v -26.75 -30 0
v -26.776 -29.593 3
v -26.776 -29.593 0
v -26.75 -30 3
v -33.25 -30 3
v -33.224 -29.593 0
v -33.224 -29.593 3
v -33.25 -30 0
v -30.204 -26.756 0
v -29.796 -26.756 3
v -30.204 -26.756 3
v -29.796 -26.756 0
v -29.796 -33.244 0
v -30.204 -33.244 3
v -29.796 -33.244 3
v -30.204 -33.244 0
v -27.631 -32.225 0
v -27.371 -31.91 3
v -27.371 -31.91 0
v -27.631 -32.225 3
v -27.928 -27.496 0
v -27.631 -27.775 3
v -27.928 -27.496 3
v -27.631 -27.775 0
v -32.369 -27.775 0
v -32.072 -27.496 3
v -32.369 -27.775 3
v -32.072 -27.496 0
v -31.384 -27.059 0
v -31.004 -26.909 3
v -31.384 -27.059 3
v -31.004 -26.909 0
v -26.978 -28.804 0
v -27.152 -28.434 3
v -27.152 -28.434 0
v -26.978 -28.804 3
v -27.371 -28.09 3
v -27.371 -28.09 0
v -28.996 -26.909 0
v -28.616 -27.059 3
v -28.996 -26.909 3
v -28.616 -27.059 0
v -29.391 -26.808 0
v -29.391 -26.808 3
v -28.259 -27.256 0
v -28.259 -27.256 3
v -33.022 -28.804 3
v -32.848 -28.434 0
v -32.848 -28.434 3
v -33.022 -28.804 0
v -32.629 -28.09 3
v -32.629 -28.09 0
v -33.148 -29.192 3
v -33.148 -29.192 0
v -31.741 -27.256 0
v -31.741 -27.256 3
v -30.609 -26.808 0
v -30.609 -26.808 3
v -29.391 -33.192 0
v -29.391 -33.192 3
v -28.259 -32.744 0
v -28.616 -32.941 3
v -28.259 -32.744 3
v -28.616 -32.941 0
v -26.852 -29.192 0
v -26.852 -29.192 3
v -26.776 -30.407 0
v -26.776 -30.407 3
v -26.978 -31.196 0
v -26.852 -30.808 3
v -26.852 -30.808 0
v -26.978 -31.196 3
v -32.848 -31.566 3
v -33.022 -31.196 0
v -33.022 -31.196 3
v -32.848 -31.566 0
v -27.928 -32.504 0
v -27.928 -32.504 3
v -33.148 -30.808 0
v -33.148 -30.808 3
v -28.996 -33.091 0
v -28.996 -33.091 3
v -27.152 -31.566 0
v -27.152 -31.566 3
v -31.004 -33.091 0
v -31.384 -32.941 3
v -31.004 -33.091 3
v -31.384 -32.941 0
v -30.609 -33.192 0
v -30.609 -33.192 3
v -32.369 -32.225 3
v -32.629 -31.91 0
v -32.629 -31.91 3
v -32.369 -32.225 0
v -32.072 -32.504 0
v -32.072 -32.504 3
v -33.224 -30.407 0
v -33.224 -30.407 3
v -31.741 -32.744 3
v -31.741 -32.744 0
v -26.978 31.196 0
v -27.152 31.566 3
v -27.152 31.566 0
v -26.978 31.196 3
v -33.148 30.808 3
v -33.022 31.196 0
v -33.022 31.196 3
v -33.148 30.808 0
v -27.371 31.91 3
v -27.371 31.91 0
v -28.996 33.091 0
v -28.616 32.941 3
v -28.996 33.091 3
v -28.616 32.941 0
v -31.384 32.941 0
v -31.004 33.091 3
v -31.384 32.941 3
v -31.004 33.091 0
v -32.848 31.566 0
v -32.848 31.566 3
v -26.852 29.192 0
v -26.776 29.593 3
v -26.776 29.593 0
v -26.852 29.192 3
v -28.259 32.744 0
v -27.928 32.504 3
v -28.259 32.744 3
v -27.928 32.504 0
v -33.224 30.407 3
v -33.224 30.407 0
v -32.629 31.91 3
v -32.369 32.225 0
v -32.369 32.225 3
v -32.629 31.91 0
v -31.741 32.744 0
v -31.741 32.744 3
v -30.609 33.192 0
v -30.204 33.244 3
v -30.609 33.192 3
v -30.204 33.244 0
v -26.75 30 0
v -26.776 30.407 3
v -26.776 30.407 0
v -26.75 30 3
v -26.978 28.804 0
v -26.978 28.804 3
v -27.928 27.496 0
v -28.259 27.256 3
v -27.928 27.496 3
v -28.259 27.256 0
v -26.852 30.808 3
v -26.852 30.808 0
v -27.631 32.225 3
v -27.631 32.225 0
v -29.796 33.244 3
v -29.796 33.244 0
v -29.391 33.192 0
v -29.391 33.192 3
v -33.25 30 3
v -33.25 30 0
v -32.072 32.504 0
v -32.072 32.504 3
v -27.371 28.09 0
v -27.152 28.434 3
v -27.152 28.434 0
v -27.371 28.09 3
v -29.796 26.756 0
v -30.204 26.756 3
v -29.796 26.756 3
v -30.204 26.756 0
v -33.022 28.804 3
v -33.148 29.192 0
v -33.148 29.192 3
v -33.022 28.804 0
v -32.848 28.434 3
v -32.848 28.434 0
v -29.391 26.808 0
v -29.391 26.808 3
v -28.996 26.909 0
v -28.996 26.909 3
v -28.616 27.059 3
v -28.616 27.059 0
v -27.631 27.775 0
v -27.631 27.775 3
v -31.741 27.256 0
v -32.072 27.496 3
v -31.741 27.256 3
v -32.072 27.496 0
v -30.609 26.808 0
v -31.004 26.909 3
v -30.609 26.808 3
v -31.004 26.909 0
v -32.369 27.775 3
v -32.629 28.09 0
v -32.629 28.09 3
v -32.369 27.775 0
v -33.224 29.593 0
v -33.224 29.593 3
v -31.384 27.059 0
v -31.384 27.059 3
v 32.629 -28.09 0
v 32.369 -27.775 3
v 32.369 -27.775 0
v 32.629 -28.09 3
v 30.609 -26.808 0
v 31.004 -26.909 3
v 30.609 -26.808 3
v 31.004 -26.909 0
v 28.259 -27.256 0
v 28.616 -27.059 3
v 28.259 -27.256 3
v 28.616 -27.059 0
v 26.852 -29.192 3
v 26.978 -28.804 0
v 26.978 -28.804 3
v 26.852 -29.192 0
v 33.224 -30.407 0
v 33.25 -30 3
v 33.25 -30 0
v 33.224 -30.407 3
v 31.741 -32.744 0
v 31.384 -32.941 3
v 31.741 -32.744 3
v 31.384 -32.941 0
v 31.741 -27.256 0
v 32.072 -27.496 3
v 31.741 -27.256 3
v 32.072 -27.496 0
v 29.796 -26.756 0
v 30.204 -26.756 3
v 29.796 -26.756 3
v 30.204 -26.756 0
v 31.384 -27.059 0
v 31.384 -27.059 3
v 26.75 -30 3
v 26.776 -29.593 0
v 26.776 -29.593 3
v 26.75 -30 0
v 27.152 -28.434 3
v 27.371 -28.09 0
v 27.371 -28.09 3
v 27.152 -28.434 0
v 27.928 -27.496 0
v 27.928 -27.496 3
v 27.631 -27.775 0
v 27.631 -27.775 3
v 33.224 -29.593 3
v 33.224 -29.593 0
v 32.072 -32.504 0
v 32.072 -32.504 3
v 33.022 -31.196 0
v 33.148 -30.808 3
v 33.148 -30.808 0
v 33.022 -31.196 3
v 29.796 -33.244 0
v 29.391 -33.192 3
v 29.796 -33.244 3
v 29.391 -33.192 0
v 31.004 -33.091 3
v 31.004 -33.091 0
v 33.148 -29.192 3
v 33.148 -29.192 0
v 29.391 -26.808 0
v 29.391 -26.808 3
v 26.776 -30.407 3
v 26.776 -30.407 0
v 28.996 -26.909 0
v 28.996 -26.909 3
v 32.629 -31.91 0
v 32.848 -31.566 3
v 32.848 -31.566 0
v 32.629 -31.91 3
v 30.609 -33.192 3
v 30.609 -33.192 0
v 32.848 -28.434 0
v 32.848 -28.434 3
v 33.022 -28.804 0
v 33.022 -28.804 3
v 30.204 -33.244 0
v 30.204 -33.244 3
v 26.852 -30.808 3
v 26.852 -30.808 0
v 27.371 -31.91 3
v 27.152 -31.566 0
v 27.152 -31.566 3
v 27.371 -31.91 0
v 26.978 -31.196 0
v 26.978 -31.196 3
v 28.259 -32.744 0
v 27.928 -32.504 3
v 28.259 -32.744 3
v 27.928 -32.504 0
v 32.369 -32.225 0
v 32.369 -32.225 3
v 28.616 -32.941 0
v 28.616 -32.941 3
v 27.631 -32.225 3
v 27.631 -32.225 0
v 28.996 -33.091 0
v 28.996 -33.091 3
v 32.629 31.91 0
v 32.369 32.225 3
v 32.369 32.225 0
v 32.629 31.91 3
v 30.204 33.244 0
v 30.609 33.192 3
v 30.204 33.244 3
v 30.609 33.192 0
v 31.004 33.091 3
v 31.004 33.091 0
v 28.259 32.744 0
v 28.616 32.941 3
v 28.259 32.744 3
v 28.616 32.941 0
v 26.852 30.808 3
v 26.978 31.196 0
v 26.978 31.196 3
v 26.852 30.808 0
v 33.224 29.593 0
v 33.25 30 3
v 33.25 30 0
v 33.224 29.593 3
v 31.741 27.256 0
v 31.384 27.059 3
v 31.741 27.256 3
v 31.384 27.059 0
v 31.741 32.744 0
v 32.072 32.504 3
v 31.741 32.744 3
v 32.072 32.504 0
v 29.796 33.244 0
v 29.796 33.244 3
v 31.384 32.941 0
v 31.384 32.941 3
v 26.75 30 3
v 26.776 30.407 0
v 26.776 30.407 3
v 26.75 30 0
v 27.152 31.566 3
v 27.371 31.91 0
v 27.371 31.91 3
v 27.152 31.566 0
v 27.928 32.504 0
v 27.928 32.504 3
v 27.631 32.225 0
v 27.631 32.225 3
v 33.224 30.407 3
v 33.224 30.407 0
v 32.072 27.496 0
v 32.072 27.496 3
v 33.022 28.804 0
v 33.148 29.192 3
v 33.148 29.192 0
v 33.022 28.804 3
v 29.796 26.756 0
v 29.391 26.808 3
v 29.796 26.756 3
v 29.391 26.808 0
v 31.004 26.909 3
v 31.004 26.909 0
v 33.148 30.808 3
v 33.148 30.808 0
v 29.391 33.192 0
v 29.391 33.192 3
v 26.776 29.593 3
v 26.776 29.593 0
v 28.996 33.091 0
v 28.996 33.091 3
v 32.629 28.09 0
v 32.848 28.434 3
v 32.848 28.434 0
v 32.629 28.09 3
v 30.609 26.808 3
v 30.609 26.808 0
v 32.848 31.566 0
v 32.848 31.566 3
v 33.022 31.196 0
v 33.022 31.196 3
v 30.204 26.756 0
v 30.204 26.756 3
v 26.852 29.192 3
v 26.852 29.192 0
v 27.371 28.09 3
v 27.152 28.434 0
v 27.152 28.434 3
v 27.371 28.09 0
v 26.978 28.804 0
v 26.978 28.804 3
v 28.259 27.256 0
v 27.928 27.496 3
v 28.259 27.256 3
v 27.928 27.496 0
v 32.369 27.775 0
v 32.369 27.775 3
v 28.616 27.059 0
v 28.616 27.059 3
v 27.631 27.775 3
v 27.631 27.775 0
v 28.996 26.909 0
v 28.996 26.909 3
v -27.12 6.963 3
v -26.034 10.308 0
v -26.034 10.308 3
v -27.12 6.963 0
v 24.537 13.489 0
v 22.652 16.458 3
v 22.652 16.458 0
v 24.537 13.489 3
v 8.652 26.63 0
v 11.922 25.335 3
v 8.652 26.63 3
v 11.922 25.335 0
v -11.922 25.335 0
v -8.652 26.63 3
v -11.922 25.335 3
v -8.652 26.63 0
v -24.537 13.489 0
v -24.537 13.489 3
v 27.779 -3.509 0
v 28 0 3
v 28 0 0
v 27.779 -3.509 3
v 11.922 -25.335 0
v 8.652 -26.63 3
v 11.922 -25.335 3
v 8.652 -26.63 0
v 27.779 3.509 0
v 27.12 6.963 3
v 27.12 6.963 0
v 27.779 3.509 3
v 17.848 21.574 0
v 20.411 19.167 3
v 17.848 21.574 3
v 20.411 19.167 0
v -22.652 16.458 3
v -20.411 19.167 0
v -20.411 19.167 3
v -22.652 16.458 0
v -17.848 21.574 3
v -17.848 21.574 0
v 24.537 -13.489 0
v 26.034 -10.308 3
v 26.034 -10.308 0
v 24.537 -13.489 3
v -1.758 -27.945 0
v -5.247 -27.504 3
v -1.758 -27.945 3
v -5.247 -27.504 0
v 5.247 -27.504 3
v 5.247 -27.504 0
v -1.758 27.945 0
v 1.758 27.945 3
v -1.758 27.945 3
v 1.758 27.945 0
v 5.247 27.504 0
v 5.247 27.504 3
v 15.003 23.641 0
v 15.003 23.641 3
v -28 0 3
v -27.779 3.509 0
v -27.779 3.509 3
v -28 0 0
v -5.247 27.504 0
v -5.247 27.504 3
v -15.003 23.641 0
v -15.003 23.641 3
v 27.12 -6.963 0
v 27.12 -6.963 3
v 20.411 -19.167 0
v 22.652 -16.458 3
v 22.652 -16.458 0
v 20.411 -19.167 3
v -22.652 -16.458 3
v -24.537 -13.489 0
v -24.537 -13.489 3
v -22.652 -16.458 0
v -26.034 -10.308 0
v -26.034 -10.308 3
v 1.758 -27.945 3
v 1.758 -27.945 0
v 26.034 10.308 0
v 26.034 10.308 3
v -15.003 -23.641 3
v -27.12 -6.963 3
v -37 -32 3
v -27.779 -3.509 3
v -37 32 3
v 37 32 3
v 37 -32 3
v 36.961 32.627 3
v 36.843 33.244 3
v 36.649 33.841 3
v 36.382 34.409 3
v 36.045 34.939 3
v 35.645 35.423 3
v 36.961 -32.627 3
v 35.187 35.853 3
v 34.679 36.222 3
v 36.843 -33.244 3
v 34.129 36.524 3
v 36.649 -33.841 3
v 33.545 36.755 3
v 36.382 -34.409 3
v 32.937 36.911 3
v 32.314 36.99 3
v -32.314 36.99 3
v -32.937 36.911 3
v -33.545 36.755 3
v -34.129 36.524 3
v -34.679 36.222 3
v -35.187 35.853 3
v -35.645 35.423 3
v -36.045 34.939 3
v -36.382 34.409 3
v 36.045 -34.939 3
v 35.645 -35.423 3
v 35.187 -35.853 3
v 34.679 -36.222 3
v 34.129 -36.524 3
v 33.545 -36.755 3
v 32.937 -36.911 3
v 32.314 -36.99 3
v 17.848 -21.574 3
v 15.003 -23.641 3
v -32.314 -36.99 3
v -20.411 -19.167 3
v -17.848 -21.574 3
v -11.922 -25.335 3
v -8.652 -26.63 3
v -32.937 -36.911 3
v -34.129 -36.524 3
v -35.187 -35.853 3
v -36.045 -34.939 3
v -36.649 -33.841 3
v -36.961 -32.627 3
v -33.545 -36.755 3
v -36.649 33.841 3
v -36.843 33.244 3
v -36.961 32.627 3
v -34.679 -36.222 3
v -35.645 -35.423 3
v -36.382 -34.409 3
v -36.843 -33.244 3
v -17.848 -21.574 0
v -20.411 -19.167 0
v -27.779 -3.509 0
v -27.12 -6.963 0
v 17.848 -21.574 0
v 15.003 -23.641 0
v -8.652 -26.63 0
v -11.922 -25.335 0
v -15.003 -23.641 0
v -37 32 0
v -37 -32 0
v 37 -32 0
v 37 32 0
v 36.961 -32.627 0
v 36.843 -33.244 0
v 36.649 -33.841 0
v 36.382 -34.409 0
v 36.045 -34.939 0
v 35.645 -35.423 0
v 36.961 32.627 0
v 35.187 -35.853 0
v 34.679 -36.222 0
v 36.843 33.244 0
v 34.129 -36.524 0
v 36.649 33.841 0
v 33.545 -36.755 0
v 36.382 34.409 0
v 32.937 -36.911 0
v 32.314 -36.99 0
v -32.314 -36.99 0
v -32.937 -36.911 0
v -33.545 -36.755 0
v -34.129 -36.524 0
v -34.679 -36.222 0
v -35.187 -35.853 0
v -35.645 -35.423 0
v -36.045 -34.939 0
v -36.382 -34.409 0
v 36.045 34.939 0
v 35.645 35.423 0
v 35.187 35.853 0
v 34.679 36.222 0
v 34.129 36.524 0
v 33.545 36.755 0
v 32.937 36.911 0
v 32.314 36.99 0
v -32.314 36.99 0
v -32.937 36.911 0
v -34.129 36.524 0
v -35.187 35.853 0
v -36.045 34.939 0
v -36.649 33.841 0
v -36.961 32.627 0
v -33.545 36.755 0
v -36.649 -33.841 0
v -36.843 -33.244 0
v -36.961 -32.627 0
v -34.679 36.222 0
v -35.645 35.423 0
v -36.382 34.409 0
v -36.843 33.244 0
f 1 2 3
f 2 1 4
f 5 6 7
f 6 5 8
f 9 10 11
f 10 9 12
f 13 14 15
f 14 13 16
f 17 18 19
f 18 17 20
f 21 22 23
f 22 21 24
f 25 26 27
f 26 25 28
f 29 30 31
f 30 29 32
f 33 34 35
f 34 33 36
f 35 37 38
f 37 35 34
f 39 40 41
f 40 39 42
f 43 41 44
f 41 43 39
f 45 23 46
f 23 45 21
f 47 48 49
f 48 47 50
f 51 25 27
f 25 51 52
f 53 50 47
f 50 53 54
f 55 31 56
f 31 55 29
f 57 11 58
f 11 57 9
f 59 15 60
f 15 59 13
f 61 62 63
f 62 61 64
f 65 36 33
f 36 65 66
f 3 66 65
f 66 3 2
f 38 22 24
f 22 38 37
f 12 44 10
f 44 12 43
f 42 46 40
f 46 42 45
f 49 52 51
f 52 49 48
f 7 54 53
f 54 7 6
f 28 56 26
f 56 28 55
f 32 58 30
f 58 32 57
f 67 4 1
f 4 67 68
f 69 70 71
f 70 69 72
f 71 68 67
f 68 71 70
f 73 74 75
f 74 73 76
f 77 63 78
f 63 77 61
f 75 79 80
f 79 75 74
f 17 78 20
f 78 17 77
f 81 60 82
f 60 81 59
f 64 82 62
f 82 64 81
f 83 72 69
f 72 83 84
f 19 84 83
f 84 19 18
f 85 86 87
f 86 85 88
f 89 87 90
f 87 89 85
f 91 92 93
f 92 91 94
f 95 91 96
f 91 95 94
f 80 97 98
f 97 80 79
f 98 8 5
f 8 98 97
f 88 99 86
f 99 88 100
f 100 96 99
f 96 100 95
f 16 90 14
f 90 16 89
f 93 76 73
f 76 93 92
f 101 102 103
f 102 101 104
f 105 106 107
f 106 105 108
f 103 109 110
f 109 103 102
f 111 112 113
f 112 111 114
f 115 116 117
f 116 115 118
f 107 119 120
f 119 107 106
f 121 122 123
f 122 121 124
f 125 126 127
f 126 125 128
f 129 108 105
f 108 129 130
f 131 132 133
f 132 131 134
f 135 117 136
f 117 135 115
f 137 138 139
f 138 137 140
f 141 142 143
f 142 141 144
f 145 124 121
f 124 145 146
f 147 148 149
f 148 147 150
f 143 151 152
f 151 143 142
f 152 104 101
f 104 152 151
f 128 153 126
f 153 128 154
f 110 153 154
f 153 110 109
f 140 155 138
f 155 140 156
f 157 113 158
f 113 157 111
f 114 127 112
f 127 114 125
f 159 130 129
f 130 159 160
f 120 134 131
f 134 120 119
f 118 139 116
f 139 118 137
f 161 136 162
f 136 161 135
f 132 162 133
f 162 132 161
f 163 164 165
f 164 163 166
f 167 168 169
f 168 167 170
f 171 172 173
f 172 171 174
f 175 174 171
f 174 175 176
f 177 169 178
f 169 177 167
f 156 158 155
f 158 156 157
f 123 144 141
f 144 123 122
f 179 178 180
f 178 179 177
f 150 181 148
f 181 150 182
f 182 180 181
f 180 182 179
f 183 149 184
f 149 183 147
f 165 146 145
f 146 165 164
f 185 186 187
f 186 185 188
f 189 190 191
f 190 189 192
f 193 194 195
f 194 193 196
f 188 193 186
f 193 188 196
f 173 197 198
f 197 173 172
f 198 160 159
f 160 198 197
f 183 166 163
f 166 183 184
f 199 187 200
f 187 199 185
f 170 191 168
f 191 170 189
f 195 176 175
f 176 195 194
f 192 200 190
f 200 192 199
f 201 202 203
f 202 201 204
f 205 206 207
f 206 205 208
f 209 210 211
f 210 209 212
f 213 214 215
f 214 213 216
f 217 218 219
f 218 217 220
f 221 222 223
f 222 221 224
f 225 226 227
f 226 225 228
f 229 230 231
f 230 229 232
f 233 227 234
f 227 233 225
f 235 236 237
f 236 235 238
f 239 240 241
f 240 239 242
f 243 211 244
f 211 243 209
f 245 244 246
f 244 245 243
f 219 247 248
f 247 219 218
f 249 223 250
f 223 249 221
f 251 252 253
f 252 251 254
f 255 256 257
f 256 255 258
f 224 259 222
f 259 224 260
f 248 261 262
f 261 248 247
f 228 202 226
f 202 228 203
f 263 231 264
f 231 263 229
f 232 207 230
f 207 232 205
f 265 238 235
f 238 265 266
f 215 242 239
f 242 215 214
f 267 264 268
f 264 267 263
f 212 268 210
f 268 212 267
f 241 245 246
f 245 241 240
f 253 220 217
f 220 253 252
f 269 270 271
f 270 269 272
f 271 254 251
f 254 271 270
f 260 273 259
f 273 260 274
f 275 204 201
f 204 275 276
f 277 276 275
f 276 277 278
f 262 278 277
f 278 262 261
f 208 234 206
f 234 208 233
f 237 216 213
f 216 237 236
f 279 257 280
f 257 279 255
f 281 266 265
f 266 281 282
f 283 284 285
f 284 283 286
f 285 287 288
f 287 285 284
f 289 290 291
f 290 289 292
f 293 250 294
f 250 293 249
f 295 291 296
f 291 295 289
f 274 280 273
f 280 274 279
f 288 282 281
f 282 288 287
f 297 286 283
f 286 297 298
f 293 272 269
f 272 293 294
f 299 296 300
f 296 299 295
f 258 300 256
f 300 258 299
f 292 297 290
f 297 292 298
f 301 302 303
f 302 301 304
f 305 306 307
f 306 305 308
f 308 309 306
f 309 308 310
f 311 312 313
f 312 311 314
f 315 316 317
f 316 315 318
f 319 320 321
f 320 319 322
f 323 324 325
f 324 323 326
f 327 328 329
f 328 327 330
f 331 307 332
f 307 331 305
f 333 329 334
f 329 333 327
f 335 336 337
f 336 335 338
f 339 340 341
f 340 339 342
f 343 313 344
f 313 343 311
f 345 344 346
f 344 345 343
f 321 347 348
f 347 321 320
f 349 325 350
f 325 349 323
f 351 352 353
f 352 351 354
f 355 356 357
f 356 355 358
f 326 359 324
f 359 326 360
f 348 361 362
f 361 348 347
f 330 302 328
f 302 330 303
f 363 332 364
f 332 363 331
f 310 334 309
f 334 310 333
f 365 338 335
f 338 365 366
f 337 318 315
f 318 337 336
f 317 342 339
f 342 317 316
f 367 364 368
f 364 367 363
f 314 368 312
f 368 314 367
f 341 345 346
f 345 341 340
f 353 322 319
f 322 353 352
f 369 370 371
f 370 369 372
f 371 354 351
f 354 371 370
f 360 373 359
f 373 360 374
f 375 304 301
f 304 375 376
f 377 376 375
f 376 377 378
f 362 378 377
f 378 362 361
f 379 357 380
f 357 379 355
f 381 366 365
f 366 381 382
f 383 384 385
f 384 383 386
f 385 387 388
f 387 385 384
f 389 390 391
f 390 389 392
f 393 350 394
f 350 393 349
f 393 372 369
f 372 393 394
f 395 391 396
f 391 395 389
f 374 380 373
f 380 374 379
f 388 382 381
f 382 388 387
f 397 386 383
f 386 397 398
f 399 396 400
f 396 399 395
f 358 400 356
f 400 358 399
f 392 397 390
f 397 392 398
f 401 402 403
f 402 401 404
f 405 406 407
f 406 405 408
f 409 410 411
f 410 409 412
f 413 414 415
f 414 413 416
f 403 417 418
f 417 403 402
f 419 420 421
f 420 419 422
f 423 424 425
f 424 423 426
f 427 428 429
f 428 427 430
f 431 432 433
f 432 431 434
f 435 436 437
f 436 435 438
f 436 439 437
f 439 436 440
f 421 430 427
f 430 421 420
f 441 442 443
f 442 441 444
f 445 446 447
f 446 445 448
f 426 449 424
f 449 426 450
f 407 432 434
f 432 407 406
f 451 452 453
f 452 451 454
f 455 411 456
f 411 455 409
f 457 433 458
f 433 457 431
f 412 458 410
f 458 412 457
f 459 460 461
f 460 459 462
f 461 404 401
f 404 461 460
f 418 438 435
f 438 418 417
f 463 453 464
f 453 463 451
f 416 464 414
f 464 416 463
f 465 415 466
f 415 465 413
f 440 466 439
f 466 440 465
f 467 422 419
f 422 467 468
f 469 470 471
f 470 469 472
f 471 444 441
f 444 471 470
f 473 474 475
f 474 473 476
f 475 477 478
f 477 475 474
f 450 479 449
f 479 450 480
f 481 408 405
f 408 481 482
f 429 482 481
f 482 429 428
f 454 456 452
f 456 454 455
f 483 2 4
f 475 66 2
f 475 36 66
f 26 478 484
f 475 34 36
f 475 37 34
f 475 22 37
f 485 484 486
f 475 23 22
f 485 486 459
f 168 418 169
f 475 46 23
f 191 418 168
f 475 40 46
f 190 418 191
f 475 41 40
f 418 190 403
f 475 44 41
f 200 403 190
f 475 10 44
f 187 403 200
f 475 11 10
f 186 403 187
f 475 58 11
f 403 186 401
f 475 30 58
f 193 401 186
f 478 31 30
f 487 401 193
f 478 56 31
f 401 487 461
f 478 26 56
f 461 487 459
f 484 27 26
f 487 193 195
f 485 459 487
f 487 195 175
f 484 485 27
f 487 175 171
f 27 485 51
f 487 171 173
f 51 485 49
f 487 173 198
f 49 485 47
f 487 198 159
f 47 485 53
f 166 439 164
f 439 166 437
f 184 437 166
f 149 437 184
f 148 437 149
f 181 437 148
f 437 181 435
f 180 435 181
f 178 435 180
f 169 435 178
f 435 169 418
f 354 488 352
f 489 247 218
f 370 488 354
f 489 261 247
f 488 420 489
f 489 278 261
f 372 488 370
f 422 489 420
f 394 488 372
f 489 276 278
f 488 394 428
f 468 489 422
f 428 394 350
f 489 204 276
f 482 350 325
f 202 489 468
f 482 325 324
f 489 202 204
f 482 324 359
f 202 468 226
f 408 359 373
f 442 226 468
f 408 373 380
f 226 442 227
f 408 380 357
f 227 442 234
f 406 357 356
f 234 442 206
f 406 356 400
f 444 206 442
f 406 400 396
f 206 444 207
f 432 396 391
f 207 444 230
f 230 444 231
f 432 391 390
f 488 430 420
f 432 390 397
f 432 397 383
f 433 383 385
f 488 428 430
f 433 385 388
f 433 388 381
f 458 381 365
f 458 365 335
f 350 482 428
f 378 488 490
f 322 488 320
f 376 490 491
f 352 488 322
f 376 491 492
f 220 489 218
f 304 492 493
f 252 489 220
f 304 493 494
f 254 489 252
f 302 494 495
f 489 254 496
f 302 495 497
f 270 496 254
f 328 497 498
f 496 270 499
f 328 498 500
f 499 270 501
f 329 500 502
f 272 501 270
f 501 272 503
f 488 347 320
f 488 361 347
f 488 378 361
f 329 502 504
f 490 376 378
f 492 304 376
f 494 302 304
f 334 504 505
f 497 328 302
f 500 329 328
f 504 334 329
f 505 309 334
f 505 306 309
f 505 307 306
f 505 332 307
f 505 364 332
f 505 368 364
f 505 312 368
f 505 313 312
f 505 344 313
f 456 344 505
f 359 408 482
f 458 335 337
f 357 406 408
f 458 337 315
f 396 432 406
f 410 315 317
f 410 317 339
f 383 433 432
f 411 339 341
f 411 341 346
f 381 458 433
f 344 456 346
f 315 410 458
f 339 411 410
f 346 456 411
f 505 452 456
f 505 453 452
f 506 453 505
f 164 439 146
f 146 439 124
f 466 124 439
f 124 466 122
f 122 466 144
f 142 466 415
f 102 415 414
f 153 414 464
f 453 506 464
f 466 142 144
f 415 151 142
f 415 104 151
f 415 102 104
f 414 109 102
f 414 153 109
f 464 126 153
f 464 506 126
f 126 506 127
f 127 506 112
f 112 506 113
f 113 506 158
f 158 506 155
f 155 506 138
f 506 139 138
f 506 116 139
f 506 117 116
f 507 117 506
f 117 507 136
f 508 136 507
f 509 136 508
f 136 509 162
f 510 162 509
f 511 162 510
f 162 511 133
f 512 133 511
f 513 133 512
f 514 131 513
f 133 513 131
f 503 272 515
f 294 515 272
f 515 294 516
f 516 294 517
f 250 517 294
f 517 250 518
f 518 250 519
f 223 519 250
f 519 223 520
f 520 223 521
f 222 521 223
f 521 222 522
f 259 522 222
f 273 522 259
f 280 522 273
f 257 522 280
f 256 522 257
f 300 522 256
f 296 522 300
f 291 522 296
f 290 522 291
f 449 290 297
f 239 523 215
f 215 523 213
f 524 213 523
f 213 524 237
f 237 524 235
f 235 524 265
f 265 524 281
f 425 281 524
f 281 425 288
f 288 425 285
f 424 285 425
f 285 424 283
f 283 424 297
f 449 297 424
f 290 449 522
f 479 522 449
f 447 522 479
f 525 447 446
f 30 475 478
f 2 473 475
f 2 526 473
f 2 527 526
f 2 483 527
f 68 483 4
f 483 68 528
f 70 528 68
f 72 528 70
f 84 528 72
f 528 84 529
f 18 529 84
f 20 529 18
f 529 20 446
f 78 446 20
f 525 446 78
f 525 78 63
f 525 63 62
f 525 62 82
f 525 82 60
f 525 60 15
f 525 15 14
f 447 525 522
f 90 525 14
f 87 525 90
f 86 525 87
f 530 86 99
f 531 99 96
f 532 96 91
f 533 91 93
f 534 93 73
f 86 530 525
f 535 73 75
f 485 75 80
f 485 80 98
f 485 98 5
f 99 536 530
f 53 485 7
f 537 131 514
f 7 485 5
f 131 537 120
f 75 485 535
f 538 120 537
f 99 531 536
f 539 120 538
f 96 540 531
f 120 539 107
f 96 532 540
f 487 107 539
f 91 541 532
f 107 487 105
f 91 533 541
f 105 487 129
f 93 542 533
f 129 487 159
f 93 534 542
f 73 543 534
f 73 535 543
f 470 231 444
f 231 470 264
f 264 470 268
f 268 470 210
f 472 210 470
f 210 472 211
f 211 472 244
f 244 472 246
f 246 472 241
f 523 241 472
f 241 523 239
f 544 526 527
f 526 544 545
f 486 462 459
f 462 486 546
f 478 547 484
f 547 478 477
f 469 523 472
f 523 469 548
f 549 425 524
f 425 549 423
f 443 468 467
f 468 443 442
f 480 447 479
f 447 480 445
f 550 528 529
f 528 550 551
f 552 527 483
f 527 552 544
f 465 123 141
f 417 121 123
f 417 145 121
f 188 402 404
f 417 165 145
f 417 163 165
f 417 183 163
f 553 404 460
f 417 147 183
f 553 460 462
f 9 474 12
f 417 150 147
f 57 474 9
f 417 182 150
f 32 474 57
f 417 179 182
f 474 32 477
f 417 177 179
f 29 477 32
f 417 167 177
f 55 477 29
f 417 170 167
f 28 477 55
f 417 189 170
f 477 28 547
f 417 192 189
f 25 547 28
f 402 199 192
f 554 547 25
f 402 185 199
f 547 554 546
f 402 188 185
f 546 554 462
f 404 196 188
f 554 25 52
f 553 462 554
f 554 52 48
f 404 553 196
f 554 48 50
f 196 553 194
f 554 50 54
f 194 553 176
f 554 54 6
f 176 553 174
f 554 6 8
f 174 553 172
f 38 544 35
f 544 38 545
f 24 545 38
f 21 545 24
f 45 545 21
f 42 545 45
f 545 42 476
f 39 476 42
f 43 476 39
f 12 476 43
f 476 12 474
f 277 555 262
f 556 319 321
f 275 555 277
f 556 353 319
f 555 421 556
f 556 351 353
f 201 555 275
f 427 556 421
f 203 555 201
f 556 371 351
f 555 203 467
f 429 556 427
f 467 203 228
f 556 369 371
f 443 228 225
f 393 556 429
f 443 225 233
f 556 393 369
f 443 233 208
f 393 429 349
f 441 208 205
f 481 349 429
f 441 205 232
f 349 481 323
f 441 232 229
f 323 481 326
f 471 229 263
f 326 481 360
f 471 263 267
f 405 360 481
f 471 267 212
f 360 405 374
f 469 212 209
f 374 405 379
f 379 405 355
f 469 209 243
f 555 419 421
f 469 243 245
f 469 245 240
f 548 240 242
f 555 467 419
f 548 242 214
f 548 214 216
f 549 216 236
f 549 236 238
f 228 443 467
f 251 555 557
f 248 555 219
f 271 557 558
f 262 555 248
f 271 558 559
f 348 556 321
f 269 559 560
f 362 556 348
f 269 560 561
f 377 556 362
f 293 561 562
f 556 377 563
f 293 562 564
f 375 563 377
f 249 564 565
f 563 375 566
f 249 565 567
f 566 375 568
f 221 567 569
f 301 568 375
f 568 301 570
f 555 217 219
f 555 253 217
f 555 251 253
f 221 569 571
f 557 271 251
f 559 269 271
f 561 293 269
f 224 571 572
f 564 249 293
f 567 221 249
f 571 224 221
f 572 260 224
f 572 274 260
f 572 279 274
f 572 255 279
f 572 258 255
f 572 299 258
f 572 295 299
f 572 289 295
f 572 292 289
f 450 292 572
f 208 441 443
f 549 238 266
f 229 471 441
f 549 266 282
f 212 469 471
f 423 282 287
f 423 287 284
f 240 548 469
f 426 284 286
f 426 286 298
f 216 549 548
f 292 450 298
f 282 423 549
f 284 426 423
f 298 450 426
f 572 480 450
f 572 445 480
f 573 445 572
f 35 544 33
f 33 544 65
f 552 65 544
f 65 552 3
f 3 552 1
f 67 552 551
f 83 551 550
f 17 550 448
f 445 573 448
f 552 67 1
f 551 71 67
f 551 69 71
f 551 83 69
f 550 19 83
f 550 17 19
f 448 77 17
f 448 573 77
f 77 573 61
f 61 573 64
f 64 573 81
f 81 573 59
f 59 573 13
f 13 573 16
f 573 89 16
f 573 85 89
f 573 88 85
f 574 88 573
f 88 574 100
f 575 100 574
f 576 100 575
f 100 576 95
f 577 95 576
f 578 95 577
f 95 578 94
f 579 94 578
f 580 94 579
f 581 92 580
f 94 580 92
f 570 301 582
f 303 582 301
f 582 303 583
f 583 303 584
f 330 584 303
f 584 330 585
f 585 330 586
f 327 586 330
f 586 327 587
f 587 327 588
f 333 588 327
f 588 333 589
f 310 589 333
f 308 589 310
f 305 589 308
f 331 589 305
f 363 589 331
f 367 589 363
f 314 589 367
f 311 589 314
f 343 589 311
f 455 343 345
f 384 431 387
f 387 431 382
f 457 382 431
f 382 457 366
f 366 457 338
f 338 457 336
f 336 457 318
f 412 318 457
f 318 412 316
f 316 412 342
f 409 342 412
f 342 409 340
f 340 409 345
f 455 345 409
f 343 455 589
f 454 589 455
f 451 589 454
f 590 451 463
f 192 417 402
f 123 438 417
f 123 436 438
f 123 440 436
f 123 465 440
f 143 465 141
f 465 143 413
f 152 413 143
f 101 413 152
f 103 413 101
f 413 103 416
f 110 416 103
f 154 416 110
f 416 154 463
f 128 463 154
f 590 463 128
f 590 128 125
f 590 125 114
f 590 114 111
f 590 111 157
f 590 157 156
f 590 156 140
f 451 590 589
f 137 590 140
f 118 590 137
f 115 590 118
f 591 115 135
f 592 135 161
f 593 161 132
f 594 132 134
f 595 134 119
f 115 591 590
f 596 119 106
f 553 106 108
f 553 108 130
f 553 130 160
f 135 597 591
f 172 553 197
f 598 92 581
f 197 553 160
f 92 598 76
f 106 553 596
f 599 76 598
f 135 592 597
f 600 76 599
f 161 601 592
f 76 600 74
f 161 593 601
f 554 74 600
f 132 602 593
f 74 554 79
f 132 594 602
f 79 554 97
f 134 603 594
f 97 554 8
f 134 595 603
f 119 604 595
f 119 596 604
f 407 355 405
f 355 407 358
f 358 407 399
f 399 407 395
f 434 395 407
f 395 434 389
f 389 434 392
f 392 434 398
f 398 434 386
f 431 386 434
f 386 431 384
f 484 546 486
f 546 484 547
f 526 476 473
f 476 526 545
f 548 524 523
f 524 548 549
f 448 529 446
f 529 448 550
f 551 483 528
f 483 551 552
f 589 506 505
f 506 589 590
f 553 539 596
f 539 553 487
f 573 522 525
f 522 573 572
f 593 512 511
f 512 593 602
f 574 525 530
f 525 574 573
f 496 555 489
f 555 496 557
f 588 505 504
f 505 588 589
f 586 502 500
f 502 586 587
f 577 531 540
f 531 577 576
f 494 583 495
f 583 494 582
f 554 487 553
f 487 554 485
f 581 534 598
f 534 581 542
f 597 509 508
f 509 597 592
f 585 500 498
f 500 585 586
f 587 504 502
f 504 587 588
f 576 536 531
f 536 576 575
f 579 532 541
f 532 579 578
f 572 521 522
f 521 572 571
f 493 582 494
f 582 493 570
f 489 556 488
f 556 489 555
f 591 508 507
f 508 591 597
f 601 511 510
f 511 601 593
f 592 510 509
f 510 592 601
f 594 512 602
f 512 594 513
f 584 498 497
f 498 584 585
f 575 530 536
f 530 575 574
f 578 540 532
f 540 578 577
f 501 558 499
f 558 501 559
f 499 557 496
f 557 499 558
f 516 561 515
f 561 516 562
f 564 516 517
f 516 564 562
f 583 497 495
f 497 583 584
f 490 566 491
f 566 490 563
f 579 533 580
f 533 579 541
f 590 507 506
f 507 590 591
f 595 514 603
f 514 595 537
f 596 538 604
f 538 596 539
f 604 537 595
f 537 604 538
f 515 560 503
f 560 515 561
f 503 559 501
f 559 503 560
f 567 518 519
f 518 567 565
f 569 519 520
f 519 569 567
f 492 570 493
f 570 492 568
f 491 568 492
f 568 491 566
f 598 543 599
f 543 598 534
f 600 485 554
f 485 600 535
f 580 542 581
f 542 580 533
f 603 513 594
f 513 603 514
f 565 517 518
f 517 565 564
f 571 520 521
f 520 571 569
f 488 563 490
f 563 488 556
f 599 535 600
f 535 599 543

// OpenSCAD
$fn = 50;


difference() {
	union() {
		hull() {
			translate(v = [-32.0000000000, 32.0000000000, 0]) {
				cylinder(h = 3, r = 5);
			}
			translate(v = [32.0000000000, 32.0000000000, 0]) {
				cylinder(h = 3, r = 5);
			}
			translate(v = [-32.0000000000, -32.0000000000, 0]) {
				cylinder(h = 3, r = 5);
			}
			translate(v = [32.0000000000, -32.0000000000, 0]) {
				cylinder(h = 3, r = 5);
			}
		}
	}
	union() {
		#translate(v = [-30.0000000000, -30.0000000000, -100.0000000000]) {
			cylinder(h = 200, r = 3.2500000000);
		}
		#translate(v = [-30.0000000000, 30.0000000000, -100.0000000000]) {
			cylinder(h = 200, r = 3.2500000000);
		}
		#translate(v = [30.0000000000, -30.0000000000, -100.0000000000]) {
			cylinder(h = 200, r = 3.2500000000);
		}
		#translate(v = [30.0000000000, 30.0000000000, -100.0000000000]) {
			cylinder(h = 200, r = 3.2500000000);
		}
		#cylinder(h = 3, r = 28.0000000000);
	}
}
